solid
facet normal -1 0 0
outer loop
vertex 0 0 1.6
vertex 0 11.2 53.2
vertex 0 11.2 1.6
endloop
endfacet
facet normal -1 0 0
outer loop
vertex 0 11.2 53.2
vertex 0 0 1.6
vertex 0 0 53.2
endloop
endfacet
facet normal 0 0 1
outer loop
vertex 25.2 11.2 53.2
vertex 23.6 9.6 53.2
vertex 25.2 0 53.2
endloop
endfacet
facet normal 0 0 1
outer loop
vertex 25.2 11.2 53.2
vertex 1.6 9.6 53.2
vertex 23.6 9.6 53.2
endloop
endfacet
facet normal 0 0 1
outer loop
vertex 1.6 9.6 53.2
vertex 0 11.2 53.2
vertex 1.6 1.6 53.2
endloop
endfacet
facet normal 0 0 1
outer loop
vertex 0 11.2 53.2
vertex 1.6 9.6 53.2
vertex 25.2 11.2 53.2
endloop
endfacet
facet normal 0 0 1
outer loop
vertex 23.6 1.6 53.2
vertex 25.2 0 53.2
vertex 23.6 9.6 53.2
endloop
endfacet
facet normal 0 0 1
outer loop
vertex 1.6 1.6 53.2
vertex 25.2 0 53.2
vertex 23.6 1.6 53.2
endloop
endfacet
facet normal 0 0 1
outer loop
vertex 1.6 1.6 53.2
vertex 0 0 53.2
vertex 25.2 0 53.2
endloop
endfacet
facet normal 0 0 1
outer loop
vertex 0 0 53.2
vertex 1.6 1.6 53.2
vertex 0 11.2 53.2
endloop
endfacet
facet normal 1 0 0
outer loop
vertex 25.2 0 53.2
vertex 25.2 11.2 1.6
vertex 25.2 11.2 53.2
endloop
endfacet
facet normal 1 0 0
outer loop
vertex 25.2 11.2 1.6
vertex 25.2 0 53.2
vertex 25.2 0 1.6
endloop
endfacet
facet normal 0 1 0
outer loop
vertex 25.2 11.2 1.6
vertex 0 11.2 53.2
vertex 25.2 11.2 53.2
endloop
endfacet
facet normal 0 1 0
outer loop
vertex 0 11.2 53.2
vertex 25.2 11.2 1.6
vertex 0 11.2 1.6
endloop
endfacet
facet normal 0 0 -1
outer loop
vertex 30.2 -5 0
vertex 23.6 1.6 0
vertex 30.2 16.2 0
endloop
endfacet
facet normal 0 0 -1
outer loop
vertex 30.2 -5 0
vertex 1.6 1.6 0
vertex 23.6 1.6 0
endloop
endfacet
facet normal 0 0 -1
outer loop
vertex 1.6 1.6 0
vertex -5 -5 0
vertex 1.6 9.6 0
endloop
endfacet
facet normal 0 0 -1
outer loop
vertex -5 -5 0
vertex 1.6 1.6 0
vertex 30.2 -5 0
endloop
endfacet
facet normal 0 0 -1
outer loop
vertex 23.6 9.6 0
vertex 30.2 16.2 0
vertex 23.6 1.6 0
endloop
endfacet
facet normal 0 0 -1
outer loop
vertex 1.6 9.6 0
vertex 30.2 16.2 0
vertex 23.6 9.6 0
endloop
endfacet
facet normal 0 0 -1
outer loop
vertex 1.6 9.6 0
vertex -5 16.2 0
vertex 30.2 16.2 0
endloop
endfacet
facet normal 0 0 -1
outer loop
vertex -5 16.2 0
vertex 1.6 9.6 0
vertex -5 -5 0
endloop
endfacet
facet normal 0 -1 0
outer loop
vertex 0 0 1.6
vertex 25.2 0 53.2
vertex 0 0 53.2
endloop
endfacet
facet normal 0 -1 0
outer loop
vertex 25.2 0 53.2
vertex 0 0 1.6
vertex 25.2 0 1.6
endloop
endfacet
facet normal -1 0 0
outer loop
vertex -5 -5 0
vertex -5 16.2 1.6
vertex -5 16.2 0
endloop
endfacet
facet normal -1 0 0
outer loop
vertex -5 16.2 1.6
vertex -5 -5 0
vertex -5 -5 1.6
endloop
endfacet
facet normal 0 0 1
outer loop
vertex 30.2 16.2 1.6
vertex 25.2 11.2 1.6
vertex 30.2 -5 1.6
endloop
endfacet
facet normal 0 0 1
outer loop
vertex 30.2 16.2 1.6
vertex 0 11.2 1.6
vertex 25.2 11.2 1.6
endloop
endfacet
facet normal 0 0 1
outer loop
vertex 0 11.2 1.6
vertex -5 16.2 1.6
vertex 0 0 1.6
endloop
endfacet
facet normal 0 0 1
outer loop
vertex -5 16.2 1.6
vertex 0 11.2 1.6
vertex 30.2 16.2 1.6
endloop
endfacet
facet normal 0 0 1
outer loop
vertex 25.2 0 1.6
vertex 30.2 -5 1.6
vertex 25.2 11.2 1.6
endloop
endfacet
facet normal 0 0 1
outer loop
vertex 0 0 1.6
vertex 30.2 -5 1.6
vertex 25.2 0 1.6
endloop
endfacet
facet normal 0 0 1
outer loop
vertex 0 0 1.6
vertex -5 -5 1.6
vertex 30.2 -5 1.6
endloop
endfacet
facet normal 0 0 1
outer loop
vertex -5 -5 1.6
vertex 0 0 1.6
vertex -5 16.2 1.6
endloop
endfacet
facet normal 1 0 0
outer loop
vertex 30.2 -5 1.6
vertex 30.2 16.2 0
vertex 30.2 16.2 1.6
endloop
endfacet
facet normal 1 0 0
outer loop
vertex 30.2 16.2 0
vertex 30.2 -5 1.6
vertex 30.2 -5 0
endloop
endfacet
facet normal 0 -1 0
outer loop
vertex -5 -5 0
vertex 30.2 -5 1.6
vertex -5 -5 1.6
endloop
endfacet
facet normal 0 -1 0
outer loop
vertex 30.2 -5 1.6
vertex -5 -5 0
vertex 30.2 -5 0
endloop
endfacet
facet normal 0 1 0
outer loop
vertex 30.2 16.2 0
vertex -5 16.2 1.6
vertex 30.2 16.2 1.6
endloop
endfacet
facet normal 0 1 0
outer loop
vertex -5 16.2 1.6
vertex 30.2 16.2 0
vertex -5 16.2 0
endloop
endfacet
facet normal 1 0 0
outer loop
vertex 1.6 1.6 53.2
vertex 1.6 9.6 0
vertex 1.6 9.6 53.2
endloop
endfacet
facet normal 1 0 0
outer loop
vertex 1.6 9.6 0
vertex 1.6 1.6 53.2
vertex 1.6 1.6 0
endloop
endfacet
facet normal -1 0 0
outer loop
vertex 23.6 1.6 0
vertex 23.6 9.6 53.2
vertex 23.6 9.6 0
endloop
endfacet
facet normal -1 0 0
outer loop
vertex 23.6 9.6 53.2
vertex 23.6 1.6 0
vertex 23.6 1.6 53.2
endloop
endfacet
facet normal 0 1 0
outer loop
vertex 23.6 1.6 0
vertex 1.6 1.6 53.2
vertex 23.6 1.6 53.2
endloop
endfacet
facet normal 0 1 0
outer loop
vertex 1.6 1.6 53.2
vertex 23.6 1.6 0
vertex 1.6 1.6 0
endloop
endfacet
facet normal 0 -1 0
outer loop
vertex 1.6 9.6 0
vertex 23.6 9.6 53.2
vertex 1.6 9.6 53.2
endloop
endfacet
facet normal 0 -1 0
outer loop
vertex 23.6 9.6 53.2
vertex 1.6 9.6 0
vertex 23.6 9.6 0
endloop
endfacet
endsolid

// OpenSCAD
materialThickness = 1.6;
cutX = 22;
cutY = 8;
cutZ = 50 + 2*materialThickness;
latchOverHang = 5;

// Cut through ikea LACK for raspi to printer usb cable
module usbCableHole() {
    difference() {
        union() {
            // base cube
            cube([
                cutX + 2*materialThickness,
                cutY + 2*materialThickness,
                cutZ
            ]);
            // add latch at top side
            translate([
                -latchOverHang,
                -latchOverHang,
                0
            ]) cube([
                cutX + 2*materialThickness + 2*latchOverHang,
                cutY + 2*materialThickness + 2*latchOverHang,
                materialThickness
            ]);
        }
        // remove hole
        translate([
            materialThickness,
            materialThickness,
            0
        ]) cube([
            cutX,
            cutY,
            cutZ
        ]);
    };
}

usbCableHole();
